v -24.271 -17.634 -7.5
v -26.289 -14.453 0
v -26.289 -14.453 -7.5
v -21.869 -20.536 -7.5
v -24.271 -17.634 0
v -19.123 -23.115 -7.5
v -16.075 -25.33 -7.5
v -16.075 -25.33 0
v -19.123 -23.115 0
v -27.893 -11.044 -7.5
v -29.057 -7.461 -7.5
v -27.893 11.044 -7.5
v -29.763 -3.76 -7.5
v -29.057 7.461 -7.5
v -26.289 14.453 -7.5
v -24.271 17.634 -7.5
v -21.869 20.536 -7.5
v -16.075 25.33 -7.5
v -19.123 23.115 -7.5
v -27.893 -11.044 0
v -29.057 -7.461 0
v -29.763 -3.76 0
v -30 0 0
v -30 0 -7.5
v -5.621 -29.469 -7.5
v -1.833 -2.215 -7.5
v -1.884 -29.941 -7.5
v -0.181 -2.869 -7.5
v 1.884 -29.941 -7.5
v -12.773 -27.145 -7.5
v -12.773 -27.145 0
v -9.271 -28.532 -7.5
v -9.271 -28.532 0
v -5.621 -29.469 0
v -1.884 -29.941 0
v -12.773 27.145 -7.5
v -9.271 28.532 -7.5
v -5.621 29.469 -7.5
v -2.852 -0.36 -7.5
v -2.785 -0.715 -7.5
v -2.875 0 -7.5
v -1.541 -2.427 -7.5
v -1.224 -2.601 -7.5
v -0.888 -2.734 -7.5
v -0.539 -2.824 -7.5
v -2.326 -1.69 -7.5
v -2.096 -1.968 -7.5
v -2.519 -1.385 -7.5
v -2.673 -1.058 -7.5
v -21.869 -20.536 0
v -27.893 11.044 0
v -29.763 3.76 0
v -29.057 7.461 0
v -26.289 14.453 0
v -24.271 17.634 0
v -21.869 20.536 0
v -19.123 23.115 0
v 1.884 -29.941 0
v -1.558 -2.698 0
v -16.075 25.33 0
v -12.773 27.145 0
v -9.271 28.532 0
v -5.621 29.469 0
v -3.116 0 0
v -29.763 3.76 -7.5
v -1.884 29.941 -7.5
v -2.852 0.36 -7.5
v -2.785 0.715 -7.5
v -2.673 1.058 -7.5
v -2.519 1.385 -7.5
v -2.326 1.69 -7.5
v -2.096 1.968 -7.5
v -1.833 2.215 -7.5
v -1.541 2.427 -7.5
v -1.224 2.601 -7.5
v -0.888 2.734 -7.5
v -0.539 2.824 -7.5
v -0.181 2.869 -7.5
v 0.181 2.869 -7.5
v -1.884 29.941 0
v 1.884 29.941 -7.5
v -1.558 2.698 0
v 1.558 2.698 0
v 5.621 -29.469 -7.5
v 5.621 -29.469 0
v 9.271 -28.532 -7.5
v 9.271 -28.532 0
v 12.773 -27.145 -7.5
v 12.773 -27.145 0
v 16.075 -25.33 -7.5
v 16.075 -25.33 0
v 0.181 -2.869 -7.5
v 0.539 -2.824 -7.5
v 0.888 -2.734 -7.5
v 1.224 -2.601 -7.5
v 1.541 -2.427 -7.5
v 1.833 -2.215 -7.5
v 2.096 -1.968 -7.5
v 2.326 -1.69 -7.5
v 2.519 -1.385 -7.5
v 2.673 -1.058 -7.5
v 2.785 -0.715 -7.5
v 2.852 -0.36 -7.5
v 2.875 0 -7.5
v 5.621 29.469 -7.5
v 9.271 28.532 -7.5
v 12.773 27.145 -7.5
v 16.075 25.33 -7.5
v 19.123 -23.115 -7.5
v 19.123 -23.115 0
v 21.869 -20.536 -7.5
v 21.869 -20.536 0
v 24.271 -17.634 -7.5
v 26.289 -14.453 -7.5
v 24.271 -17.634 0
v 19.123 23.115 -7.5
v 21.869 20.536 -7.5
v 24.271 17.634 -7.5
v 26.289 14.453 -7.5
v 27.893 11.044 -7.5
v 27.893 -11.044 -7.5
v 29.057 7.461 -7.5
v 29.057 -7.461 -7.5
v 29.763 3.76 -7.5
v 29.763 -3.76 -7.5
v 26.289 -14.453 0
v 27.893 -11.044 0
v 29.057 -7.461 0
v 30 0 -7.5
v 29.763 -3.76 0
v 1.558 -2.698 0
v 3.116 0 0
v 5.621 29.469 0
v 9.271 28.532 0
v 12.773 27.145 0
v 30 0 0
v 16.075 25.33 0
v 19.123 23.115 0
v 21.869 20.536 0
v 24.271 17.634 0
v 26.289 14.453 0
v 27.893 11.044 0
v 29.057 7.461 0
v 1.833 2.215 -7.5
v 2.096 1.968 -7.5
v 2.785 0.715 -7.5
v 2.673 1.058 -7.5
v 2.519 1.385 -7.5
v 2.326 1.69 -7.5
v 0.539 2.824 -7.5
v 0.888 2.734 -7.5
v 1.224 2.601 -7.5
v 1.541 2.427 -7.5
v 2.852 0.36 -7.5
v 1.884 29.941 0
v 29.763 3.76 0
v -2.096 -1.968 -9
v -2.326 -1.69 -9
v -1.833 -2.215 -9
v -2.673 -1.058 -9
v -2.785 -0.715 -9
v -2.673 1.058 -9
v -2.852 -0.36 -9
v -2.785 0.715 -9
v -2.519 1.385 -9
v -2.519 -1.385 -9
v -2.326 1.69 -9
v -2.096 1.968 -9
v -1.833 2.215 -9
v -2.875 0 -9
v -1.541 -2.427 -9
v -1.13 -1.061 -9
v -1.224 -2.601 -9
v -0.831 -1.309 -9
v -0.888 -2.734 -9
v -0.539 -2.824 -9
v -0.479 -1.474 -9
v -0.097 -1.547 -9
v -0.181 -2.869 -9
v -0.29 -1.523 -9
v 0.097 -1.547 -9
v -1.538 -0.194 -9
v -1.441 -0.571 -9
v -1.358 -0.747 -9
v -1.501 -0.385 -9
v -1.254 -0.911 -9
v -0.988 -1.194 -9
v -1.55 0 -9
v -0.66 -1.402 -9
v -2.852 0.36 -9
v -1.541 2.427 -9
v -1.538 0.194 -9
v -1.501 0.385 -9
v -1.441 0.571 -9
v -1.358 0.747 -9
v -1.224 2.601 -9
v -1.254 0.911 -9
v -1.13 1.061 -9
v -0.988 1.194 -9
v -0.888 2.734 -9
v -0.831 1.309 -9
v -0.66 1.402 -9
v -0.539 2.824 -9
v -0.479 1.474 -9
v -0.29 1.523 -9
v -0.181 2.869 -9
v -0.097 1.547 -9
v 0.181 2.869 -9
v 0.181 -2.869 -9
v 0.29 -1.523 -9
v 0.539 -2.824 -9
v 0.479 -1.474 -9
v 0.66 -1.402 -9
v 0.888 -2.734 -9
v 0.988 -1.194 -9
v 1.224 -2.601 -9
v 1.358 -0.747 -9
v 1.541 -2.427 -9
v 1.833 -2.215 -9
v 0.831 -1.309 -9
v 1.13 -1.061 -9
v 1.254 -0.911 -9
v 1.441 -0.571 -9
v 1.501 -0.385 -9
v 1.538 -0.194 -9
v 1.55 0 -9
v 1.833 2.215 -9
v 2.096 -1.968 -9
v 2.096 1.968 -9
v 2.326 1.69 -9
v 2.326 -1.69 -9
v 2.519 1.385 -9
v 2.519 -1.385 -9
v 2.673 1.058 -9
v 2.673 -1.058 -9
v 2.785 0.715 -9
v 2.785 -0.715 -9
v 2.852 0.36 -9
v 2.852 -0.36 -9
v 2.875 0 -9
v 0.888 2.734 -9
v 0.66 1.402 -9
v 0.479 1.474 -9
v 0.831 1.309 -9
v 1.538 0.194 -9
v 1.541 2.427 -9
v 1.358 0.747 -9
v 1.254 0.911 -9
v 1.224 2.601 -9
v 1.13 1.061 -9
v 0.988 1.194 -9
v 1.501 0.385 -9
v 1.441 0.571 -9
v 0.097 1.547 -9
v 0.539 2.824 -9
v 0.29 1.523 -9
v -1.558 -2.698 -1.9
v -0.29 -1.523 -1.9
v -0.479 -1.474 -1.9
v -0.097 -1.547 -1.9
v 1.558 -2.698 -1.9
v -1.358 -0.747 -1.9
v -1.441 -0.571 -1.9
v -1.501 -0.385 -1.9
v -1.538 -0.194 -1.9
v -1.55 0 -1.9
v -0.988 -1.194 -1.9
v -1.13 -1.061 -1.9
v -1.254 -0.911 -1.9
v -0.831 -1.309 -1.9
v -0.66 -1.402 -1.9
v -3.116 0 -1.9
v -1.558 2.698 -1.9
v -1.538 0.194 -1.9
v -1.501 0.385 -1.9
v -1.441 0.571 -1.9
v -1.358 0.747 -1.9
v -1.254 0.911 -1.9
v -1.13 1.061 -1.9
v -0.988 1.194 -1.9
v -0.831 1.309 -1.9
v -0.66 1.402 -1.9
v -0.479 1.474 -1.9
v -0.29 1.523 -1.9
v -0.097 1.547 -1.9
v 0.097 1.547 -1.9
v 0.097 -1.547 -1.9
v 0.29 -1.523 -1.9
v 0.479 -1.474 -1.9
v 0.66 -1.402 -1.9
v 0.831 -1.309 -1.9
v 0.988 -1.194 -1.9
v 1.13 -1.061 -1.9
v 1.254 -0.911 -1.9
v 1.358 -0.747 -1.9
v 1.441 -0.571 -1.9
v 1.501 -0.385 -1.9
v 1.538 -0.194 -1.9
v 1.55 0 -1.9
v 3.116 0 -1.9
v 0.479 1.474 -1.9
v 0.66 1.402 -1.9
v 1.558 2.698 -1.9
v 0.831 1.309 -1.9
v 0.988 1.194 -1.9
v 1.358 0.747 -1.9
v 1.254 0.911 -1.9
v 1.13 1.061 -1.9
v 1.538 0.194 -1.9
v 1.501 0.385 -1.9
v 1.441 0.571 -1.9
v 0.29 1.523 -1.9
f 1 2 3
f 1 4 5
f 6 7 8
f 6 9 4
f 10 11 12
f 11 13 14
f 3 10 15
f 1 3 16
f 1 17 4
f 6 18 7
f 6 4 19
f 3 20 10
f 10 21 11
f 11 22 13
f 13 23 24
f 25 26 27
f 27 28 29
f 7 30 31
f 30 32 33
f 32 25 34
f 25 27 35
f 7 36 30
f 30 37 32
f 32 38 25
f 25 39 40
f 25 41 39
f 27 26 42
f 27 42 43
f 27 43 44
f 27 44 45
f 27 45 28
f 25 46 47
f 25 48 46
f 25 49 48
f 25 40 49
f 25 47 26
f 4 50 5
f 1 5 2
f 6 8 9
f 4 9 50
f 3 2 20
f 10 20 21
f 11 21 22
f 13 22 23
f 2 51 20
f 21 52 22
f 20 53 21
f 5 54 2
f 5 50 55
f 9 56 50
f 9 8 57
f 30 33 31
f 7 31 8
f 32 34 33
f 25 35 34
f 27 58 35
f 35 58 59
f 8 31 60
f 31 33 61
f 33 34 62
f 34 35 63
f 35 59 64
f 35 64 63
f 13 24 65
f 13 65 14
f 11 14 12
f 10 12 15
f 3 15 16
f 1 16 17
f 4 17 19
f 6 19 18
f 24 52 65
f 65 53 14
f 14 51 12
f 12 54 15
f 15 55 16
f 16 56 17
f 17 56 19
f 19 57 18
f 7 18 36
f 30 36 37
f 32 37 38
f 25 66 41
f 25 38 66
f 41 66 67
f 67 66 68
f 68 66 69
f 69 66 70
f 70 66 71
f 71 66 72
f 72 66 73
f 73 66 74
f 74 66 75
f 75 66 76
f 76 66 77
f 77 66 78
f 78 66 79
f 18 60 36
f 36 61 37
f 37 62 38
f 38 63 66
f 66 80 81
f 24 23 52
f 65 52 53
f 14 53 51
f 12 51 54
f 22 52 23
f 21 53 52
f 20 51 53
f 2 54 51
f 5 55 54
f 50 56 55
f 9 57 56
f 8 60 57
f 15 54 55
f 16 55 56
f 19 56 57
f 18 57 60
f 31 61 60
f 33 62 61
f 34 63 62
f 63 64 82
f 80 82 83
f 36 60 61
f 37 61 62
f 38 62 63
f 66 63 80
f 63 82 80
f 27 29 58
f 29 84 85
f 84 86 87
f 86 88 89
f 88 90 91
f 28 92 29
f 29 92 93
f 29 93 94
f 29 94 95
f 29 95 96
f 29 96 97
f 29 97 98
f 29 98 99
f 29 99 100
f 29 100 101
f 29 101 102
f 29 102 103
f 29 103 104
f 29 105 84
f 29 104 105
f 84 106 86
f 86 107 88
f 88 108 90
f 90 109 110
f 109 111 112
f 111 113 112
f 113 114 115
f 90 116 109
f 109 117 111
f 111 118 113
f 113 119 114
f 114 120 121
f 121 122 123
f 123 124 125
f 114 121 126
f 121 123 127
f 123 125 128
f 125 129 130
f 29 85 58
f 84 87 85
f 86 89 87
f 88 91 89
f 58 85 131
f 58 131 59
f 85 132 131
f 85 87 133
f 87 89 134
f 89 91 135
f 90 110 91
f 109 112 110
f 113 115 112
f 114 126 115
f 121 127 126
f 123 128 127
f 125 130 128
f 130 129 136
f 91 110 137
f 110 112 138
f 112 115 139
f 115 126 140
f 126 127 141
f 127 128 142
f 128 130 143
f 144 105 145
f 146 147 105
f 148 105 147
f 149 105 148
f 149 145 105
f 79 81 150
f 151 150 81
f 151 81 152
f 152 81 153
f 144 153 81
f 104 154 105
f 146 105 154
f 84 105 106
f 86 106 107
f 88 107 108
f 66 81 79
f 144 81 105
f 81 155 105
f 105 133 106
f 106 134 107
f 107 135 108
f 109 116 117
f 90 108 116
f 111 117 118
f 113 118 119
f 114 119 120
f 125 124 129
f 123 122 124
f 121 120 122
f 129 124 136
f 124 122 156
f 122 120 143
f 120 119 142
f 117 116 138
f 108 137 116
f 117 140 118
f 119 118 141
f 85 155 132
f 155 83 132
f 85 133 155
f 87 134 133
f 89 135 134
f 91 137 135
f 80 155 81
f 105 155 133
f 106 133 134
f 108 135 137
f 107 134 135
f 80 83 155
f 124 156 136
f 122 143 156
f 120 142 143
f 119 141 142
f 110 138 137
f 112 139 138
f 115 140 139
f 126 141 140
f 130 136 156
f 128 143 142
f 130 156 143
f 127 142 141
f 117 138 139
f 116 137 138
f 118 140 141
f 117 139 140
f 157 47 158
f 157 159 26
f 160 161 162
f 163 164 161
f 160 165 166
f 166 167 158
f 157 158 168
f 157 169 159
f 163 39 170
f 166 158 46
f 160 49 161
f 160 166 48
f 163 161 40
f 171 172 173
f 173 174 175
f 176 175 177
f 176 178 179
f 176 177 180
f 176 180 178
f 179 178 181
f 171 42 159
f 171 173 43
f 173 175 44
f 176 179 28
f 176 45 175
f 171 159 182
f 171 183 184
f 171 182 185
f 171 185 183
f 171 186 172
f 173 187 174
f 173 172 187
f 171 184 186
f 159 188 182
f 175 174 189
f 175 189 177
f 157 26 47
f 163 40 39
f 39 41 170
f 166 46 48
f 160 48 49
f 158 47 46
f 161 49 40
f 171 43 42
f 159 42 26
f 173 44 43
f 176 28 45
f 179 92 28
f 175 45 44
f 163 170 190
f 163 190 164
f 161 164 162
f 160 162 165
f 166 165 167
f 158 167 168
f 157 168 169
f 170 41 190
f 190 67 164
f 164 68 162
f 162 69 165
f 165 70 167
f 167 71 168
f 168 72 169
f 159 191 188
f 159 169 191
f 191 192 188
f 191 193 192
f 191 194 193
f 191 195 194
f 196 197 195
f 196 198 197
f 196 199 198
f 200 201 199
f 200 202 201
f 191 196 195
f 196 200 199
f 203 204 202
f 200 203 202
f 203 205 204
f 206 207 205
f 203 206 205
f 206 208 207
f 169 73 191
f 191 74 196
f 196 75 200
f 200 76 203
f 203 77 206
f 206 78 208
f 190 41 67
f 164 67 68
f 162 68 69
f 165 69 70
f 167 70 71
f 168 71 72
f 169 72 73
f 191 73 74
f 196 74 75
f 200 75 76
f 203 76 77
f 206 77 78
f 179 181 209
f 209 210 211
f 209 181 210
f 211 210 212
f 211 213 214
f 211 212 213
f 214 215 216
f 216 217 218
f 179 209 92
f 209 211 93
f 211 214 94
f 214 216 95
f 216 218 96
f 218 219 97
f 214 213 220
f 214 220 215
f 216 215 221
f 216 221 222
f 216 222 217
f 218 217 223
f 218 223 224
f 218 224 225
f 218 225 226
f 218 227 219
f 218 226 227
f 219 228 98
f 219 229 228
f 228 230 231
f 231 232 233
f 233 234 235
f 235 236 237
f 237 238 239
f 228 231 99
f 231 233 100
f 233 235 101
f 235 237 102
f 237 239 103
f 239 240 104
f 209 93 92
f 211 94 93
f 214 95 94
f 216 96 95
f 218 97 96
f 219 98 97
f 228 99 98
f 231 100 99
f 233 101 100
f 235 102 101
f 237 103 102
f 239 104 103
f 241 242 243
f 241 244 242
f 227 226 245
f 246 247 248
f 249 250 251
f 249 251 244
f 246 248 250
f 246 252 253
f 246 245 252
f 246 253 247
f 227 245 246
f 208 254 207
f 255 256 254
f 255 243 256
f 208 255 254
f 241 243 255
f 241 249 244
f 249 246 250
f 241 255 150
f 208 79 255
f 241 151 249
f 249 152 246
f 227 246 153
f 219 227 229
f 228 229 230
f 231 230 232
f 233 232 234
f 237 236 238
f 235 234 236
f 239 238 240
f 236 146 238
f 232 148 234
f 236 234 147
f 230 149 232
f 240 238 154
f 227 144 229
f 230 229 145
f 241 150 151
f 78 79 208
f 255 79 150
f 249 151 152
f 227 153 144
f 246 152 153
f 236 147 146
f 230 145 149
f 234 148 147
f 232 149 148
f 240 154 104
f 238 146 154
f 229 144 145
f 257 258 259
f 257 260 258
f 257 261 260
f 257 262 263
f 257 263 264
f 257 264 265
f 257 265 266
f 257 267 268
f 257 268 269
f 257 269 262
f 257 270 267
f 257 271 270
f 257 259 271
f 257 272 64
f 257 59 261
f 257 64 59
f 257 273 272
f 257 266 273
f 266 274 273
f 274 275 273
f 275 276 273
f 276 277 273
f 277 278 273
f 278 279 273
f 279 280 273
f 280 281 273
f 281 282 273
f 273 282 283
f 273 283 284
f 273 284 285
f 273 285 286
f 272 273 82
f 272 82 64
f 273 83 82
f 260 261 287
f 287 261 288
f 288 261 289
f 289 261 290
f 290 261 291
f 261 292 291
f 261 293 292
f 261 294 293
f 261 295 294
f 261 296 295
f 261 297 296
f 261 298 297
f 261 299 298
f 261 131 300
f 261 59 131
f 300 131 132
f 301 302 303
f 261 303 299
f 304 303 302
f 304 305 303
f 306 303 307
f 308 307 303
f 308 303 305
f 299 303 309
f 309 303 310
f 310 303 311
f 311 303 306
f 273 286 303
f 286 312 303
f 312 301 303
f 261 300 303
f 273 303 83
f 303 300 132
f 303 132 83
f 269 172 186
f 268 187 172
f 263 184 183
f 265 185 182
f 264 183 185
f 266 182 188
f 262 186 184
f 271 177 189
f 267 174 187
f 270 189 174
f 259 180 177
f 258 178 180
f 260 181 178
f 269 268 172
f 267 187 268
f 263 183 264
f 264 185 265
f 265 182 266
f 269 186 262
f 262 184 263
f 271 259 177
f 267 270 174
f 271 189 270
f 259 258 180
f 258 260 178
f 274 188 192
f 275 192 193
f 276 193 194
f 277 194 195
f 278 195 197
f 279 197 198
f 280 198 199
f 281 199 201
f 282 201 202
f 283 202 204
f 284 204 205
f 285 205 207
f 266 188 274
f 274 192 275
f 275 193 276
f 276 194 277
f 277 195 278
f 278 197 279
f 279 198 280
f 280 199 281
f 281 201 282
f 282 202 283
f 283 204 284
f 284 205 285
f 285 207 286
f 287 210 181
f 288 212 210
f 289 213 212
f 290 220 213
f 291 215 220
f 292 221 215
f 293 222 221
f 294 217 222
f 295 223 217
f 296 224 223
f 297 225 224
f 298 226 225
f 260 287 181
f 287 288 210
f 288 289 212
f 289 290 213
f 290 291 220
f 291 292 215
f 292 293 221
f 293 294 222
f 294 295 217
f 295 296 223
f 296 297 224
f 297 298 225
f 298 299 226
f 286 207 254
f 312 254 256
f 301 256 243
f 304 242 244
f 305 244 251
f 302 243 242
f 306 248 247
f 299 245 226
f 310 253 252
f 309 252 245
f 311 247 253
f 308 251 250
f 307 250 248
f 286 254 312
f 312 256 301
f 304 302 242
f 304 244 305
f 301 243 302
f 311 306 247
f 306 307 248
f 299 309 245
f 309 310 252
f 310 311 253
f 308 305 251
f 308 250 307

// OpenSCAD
$fn = 50;

difference() {
	union() {
		translate(v = [0, 0, -7.5]) {
			cylinder(h = 7.5, r = 30.0);
		}
		#translate(v = [0, 0, -9.0]) {
			cylinder(h = 9, r = 2.875);
		}
	}
	union() {
		translate(v = [0, 0, 0]) {
			rotate(a = [0, 0, 0]) {
				difference() {
					union() {
						translate(v = [0, 0, -1.9]) {
							linear_extrude(height = 1.9) {
								polygon(points = [[3.1158, 0.0], [1.5579000000000005, 2.698361953111554], [-1.5578999999999994, 2.6983619531115544], [-3.1158, 3.815754496783323e-16], [-1.5579000000000014, -2.6983619531115535], [1.557899999999998, -2.6983619531115552]]);
							}
						}
					}
					union();
				}
			}
		}
		#translate(v = [0, 0, -100.0]) {
			cylinder(h = 200, r = 1.55);
		}
	}
}
